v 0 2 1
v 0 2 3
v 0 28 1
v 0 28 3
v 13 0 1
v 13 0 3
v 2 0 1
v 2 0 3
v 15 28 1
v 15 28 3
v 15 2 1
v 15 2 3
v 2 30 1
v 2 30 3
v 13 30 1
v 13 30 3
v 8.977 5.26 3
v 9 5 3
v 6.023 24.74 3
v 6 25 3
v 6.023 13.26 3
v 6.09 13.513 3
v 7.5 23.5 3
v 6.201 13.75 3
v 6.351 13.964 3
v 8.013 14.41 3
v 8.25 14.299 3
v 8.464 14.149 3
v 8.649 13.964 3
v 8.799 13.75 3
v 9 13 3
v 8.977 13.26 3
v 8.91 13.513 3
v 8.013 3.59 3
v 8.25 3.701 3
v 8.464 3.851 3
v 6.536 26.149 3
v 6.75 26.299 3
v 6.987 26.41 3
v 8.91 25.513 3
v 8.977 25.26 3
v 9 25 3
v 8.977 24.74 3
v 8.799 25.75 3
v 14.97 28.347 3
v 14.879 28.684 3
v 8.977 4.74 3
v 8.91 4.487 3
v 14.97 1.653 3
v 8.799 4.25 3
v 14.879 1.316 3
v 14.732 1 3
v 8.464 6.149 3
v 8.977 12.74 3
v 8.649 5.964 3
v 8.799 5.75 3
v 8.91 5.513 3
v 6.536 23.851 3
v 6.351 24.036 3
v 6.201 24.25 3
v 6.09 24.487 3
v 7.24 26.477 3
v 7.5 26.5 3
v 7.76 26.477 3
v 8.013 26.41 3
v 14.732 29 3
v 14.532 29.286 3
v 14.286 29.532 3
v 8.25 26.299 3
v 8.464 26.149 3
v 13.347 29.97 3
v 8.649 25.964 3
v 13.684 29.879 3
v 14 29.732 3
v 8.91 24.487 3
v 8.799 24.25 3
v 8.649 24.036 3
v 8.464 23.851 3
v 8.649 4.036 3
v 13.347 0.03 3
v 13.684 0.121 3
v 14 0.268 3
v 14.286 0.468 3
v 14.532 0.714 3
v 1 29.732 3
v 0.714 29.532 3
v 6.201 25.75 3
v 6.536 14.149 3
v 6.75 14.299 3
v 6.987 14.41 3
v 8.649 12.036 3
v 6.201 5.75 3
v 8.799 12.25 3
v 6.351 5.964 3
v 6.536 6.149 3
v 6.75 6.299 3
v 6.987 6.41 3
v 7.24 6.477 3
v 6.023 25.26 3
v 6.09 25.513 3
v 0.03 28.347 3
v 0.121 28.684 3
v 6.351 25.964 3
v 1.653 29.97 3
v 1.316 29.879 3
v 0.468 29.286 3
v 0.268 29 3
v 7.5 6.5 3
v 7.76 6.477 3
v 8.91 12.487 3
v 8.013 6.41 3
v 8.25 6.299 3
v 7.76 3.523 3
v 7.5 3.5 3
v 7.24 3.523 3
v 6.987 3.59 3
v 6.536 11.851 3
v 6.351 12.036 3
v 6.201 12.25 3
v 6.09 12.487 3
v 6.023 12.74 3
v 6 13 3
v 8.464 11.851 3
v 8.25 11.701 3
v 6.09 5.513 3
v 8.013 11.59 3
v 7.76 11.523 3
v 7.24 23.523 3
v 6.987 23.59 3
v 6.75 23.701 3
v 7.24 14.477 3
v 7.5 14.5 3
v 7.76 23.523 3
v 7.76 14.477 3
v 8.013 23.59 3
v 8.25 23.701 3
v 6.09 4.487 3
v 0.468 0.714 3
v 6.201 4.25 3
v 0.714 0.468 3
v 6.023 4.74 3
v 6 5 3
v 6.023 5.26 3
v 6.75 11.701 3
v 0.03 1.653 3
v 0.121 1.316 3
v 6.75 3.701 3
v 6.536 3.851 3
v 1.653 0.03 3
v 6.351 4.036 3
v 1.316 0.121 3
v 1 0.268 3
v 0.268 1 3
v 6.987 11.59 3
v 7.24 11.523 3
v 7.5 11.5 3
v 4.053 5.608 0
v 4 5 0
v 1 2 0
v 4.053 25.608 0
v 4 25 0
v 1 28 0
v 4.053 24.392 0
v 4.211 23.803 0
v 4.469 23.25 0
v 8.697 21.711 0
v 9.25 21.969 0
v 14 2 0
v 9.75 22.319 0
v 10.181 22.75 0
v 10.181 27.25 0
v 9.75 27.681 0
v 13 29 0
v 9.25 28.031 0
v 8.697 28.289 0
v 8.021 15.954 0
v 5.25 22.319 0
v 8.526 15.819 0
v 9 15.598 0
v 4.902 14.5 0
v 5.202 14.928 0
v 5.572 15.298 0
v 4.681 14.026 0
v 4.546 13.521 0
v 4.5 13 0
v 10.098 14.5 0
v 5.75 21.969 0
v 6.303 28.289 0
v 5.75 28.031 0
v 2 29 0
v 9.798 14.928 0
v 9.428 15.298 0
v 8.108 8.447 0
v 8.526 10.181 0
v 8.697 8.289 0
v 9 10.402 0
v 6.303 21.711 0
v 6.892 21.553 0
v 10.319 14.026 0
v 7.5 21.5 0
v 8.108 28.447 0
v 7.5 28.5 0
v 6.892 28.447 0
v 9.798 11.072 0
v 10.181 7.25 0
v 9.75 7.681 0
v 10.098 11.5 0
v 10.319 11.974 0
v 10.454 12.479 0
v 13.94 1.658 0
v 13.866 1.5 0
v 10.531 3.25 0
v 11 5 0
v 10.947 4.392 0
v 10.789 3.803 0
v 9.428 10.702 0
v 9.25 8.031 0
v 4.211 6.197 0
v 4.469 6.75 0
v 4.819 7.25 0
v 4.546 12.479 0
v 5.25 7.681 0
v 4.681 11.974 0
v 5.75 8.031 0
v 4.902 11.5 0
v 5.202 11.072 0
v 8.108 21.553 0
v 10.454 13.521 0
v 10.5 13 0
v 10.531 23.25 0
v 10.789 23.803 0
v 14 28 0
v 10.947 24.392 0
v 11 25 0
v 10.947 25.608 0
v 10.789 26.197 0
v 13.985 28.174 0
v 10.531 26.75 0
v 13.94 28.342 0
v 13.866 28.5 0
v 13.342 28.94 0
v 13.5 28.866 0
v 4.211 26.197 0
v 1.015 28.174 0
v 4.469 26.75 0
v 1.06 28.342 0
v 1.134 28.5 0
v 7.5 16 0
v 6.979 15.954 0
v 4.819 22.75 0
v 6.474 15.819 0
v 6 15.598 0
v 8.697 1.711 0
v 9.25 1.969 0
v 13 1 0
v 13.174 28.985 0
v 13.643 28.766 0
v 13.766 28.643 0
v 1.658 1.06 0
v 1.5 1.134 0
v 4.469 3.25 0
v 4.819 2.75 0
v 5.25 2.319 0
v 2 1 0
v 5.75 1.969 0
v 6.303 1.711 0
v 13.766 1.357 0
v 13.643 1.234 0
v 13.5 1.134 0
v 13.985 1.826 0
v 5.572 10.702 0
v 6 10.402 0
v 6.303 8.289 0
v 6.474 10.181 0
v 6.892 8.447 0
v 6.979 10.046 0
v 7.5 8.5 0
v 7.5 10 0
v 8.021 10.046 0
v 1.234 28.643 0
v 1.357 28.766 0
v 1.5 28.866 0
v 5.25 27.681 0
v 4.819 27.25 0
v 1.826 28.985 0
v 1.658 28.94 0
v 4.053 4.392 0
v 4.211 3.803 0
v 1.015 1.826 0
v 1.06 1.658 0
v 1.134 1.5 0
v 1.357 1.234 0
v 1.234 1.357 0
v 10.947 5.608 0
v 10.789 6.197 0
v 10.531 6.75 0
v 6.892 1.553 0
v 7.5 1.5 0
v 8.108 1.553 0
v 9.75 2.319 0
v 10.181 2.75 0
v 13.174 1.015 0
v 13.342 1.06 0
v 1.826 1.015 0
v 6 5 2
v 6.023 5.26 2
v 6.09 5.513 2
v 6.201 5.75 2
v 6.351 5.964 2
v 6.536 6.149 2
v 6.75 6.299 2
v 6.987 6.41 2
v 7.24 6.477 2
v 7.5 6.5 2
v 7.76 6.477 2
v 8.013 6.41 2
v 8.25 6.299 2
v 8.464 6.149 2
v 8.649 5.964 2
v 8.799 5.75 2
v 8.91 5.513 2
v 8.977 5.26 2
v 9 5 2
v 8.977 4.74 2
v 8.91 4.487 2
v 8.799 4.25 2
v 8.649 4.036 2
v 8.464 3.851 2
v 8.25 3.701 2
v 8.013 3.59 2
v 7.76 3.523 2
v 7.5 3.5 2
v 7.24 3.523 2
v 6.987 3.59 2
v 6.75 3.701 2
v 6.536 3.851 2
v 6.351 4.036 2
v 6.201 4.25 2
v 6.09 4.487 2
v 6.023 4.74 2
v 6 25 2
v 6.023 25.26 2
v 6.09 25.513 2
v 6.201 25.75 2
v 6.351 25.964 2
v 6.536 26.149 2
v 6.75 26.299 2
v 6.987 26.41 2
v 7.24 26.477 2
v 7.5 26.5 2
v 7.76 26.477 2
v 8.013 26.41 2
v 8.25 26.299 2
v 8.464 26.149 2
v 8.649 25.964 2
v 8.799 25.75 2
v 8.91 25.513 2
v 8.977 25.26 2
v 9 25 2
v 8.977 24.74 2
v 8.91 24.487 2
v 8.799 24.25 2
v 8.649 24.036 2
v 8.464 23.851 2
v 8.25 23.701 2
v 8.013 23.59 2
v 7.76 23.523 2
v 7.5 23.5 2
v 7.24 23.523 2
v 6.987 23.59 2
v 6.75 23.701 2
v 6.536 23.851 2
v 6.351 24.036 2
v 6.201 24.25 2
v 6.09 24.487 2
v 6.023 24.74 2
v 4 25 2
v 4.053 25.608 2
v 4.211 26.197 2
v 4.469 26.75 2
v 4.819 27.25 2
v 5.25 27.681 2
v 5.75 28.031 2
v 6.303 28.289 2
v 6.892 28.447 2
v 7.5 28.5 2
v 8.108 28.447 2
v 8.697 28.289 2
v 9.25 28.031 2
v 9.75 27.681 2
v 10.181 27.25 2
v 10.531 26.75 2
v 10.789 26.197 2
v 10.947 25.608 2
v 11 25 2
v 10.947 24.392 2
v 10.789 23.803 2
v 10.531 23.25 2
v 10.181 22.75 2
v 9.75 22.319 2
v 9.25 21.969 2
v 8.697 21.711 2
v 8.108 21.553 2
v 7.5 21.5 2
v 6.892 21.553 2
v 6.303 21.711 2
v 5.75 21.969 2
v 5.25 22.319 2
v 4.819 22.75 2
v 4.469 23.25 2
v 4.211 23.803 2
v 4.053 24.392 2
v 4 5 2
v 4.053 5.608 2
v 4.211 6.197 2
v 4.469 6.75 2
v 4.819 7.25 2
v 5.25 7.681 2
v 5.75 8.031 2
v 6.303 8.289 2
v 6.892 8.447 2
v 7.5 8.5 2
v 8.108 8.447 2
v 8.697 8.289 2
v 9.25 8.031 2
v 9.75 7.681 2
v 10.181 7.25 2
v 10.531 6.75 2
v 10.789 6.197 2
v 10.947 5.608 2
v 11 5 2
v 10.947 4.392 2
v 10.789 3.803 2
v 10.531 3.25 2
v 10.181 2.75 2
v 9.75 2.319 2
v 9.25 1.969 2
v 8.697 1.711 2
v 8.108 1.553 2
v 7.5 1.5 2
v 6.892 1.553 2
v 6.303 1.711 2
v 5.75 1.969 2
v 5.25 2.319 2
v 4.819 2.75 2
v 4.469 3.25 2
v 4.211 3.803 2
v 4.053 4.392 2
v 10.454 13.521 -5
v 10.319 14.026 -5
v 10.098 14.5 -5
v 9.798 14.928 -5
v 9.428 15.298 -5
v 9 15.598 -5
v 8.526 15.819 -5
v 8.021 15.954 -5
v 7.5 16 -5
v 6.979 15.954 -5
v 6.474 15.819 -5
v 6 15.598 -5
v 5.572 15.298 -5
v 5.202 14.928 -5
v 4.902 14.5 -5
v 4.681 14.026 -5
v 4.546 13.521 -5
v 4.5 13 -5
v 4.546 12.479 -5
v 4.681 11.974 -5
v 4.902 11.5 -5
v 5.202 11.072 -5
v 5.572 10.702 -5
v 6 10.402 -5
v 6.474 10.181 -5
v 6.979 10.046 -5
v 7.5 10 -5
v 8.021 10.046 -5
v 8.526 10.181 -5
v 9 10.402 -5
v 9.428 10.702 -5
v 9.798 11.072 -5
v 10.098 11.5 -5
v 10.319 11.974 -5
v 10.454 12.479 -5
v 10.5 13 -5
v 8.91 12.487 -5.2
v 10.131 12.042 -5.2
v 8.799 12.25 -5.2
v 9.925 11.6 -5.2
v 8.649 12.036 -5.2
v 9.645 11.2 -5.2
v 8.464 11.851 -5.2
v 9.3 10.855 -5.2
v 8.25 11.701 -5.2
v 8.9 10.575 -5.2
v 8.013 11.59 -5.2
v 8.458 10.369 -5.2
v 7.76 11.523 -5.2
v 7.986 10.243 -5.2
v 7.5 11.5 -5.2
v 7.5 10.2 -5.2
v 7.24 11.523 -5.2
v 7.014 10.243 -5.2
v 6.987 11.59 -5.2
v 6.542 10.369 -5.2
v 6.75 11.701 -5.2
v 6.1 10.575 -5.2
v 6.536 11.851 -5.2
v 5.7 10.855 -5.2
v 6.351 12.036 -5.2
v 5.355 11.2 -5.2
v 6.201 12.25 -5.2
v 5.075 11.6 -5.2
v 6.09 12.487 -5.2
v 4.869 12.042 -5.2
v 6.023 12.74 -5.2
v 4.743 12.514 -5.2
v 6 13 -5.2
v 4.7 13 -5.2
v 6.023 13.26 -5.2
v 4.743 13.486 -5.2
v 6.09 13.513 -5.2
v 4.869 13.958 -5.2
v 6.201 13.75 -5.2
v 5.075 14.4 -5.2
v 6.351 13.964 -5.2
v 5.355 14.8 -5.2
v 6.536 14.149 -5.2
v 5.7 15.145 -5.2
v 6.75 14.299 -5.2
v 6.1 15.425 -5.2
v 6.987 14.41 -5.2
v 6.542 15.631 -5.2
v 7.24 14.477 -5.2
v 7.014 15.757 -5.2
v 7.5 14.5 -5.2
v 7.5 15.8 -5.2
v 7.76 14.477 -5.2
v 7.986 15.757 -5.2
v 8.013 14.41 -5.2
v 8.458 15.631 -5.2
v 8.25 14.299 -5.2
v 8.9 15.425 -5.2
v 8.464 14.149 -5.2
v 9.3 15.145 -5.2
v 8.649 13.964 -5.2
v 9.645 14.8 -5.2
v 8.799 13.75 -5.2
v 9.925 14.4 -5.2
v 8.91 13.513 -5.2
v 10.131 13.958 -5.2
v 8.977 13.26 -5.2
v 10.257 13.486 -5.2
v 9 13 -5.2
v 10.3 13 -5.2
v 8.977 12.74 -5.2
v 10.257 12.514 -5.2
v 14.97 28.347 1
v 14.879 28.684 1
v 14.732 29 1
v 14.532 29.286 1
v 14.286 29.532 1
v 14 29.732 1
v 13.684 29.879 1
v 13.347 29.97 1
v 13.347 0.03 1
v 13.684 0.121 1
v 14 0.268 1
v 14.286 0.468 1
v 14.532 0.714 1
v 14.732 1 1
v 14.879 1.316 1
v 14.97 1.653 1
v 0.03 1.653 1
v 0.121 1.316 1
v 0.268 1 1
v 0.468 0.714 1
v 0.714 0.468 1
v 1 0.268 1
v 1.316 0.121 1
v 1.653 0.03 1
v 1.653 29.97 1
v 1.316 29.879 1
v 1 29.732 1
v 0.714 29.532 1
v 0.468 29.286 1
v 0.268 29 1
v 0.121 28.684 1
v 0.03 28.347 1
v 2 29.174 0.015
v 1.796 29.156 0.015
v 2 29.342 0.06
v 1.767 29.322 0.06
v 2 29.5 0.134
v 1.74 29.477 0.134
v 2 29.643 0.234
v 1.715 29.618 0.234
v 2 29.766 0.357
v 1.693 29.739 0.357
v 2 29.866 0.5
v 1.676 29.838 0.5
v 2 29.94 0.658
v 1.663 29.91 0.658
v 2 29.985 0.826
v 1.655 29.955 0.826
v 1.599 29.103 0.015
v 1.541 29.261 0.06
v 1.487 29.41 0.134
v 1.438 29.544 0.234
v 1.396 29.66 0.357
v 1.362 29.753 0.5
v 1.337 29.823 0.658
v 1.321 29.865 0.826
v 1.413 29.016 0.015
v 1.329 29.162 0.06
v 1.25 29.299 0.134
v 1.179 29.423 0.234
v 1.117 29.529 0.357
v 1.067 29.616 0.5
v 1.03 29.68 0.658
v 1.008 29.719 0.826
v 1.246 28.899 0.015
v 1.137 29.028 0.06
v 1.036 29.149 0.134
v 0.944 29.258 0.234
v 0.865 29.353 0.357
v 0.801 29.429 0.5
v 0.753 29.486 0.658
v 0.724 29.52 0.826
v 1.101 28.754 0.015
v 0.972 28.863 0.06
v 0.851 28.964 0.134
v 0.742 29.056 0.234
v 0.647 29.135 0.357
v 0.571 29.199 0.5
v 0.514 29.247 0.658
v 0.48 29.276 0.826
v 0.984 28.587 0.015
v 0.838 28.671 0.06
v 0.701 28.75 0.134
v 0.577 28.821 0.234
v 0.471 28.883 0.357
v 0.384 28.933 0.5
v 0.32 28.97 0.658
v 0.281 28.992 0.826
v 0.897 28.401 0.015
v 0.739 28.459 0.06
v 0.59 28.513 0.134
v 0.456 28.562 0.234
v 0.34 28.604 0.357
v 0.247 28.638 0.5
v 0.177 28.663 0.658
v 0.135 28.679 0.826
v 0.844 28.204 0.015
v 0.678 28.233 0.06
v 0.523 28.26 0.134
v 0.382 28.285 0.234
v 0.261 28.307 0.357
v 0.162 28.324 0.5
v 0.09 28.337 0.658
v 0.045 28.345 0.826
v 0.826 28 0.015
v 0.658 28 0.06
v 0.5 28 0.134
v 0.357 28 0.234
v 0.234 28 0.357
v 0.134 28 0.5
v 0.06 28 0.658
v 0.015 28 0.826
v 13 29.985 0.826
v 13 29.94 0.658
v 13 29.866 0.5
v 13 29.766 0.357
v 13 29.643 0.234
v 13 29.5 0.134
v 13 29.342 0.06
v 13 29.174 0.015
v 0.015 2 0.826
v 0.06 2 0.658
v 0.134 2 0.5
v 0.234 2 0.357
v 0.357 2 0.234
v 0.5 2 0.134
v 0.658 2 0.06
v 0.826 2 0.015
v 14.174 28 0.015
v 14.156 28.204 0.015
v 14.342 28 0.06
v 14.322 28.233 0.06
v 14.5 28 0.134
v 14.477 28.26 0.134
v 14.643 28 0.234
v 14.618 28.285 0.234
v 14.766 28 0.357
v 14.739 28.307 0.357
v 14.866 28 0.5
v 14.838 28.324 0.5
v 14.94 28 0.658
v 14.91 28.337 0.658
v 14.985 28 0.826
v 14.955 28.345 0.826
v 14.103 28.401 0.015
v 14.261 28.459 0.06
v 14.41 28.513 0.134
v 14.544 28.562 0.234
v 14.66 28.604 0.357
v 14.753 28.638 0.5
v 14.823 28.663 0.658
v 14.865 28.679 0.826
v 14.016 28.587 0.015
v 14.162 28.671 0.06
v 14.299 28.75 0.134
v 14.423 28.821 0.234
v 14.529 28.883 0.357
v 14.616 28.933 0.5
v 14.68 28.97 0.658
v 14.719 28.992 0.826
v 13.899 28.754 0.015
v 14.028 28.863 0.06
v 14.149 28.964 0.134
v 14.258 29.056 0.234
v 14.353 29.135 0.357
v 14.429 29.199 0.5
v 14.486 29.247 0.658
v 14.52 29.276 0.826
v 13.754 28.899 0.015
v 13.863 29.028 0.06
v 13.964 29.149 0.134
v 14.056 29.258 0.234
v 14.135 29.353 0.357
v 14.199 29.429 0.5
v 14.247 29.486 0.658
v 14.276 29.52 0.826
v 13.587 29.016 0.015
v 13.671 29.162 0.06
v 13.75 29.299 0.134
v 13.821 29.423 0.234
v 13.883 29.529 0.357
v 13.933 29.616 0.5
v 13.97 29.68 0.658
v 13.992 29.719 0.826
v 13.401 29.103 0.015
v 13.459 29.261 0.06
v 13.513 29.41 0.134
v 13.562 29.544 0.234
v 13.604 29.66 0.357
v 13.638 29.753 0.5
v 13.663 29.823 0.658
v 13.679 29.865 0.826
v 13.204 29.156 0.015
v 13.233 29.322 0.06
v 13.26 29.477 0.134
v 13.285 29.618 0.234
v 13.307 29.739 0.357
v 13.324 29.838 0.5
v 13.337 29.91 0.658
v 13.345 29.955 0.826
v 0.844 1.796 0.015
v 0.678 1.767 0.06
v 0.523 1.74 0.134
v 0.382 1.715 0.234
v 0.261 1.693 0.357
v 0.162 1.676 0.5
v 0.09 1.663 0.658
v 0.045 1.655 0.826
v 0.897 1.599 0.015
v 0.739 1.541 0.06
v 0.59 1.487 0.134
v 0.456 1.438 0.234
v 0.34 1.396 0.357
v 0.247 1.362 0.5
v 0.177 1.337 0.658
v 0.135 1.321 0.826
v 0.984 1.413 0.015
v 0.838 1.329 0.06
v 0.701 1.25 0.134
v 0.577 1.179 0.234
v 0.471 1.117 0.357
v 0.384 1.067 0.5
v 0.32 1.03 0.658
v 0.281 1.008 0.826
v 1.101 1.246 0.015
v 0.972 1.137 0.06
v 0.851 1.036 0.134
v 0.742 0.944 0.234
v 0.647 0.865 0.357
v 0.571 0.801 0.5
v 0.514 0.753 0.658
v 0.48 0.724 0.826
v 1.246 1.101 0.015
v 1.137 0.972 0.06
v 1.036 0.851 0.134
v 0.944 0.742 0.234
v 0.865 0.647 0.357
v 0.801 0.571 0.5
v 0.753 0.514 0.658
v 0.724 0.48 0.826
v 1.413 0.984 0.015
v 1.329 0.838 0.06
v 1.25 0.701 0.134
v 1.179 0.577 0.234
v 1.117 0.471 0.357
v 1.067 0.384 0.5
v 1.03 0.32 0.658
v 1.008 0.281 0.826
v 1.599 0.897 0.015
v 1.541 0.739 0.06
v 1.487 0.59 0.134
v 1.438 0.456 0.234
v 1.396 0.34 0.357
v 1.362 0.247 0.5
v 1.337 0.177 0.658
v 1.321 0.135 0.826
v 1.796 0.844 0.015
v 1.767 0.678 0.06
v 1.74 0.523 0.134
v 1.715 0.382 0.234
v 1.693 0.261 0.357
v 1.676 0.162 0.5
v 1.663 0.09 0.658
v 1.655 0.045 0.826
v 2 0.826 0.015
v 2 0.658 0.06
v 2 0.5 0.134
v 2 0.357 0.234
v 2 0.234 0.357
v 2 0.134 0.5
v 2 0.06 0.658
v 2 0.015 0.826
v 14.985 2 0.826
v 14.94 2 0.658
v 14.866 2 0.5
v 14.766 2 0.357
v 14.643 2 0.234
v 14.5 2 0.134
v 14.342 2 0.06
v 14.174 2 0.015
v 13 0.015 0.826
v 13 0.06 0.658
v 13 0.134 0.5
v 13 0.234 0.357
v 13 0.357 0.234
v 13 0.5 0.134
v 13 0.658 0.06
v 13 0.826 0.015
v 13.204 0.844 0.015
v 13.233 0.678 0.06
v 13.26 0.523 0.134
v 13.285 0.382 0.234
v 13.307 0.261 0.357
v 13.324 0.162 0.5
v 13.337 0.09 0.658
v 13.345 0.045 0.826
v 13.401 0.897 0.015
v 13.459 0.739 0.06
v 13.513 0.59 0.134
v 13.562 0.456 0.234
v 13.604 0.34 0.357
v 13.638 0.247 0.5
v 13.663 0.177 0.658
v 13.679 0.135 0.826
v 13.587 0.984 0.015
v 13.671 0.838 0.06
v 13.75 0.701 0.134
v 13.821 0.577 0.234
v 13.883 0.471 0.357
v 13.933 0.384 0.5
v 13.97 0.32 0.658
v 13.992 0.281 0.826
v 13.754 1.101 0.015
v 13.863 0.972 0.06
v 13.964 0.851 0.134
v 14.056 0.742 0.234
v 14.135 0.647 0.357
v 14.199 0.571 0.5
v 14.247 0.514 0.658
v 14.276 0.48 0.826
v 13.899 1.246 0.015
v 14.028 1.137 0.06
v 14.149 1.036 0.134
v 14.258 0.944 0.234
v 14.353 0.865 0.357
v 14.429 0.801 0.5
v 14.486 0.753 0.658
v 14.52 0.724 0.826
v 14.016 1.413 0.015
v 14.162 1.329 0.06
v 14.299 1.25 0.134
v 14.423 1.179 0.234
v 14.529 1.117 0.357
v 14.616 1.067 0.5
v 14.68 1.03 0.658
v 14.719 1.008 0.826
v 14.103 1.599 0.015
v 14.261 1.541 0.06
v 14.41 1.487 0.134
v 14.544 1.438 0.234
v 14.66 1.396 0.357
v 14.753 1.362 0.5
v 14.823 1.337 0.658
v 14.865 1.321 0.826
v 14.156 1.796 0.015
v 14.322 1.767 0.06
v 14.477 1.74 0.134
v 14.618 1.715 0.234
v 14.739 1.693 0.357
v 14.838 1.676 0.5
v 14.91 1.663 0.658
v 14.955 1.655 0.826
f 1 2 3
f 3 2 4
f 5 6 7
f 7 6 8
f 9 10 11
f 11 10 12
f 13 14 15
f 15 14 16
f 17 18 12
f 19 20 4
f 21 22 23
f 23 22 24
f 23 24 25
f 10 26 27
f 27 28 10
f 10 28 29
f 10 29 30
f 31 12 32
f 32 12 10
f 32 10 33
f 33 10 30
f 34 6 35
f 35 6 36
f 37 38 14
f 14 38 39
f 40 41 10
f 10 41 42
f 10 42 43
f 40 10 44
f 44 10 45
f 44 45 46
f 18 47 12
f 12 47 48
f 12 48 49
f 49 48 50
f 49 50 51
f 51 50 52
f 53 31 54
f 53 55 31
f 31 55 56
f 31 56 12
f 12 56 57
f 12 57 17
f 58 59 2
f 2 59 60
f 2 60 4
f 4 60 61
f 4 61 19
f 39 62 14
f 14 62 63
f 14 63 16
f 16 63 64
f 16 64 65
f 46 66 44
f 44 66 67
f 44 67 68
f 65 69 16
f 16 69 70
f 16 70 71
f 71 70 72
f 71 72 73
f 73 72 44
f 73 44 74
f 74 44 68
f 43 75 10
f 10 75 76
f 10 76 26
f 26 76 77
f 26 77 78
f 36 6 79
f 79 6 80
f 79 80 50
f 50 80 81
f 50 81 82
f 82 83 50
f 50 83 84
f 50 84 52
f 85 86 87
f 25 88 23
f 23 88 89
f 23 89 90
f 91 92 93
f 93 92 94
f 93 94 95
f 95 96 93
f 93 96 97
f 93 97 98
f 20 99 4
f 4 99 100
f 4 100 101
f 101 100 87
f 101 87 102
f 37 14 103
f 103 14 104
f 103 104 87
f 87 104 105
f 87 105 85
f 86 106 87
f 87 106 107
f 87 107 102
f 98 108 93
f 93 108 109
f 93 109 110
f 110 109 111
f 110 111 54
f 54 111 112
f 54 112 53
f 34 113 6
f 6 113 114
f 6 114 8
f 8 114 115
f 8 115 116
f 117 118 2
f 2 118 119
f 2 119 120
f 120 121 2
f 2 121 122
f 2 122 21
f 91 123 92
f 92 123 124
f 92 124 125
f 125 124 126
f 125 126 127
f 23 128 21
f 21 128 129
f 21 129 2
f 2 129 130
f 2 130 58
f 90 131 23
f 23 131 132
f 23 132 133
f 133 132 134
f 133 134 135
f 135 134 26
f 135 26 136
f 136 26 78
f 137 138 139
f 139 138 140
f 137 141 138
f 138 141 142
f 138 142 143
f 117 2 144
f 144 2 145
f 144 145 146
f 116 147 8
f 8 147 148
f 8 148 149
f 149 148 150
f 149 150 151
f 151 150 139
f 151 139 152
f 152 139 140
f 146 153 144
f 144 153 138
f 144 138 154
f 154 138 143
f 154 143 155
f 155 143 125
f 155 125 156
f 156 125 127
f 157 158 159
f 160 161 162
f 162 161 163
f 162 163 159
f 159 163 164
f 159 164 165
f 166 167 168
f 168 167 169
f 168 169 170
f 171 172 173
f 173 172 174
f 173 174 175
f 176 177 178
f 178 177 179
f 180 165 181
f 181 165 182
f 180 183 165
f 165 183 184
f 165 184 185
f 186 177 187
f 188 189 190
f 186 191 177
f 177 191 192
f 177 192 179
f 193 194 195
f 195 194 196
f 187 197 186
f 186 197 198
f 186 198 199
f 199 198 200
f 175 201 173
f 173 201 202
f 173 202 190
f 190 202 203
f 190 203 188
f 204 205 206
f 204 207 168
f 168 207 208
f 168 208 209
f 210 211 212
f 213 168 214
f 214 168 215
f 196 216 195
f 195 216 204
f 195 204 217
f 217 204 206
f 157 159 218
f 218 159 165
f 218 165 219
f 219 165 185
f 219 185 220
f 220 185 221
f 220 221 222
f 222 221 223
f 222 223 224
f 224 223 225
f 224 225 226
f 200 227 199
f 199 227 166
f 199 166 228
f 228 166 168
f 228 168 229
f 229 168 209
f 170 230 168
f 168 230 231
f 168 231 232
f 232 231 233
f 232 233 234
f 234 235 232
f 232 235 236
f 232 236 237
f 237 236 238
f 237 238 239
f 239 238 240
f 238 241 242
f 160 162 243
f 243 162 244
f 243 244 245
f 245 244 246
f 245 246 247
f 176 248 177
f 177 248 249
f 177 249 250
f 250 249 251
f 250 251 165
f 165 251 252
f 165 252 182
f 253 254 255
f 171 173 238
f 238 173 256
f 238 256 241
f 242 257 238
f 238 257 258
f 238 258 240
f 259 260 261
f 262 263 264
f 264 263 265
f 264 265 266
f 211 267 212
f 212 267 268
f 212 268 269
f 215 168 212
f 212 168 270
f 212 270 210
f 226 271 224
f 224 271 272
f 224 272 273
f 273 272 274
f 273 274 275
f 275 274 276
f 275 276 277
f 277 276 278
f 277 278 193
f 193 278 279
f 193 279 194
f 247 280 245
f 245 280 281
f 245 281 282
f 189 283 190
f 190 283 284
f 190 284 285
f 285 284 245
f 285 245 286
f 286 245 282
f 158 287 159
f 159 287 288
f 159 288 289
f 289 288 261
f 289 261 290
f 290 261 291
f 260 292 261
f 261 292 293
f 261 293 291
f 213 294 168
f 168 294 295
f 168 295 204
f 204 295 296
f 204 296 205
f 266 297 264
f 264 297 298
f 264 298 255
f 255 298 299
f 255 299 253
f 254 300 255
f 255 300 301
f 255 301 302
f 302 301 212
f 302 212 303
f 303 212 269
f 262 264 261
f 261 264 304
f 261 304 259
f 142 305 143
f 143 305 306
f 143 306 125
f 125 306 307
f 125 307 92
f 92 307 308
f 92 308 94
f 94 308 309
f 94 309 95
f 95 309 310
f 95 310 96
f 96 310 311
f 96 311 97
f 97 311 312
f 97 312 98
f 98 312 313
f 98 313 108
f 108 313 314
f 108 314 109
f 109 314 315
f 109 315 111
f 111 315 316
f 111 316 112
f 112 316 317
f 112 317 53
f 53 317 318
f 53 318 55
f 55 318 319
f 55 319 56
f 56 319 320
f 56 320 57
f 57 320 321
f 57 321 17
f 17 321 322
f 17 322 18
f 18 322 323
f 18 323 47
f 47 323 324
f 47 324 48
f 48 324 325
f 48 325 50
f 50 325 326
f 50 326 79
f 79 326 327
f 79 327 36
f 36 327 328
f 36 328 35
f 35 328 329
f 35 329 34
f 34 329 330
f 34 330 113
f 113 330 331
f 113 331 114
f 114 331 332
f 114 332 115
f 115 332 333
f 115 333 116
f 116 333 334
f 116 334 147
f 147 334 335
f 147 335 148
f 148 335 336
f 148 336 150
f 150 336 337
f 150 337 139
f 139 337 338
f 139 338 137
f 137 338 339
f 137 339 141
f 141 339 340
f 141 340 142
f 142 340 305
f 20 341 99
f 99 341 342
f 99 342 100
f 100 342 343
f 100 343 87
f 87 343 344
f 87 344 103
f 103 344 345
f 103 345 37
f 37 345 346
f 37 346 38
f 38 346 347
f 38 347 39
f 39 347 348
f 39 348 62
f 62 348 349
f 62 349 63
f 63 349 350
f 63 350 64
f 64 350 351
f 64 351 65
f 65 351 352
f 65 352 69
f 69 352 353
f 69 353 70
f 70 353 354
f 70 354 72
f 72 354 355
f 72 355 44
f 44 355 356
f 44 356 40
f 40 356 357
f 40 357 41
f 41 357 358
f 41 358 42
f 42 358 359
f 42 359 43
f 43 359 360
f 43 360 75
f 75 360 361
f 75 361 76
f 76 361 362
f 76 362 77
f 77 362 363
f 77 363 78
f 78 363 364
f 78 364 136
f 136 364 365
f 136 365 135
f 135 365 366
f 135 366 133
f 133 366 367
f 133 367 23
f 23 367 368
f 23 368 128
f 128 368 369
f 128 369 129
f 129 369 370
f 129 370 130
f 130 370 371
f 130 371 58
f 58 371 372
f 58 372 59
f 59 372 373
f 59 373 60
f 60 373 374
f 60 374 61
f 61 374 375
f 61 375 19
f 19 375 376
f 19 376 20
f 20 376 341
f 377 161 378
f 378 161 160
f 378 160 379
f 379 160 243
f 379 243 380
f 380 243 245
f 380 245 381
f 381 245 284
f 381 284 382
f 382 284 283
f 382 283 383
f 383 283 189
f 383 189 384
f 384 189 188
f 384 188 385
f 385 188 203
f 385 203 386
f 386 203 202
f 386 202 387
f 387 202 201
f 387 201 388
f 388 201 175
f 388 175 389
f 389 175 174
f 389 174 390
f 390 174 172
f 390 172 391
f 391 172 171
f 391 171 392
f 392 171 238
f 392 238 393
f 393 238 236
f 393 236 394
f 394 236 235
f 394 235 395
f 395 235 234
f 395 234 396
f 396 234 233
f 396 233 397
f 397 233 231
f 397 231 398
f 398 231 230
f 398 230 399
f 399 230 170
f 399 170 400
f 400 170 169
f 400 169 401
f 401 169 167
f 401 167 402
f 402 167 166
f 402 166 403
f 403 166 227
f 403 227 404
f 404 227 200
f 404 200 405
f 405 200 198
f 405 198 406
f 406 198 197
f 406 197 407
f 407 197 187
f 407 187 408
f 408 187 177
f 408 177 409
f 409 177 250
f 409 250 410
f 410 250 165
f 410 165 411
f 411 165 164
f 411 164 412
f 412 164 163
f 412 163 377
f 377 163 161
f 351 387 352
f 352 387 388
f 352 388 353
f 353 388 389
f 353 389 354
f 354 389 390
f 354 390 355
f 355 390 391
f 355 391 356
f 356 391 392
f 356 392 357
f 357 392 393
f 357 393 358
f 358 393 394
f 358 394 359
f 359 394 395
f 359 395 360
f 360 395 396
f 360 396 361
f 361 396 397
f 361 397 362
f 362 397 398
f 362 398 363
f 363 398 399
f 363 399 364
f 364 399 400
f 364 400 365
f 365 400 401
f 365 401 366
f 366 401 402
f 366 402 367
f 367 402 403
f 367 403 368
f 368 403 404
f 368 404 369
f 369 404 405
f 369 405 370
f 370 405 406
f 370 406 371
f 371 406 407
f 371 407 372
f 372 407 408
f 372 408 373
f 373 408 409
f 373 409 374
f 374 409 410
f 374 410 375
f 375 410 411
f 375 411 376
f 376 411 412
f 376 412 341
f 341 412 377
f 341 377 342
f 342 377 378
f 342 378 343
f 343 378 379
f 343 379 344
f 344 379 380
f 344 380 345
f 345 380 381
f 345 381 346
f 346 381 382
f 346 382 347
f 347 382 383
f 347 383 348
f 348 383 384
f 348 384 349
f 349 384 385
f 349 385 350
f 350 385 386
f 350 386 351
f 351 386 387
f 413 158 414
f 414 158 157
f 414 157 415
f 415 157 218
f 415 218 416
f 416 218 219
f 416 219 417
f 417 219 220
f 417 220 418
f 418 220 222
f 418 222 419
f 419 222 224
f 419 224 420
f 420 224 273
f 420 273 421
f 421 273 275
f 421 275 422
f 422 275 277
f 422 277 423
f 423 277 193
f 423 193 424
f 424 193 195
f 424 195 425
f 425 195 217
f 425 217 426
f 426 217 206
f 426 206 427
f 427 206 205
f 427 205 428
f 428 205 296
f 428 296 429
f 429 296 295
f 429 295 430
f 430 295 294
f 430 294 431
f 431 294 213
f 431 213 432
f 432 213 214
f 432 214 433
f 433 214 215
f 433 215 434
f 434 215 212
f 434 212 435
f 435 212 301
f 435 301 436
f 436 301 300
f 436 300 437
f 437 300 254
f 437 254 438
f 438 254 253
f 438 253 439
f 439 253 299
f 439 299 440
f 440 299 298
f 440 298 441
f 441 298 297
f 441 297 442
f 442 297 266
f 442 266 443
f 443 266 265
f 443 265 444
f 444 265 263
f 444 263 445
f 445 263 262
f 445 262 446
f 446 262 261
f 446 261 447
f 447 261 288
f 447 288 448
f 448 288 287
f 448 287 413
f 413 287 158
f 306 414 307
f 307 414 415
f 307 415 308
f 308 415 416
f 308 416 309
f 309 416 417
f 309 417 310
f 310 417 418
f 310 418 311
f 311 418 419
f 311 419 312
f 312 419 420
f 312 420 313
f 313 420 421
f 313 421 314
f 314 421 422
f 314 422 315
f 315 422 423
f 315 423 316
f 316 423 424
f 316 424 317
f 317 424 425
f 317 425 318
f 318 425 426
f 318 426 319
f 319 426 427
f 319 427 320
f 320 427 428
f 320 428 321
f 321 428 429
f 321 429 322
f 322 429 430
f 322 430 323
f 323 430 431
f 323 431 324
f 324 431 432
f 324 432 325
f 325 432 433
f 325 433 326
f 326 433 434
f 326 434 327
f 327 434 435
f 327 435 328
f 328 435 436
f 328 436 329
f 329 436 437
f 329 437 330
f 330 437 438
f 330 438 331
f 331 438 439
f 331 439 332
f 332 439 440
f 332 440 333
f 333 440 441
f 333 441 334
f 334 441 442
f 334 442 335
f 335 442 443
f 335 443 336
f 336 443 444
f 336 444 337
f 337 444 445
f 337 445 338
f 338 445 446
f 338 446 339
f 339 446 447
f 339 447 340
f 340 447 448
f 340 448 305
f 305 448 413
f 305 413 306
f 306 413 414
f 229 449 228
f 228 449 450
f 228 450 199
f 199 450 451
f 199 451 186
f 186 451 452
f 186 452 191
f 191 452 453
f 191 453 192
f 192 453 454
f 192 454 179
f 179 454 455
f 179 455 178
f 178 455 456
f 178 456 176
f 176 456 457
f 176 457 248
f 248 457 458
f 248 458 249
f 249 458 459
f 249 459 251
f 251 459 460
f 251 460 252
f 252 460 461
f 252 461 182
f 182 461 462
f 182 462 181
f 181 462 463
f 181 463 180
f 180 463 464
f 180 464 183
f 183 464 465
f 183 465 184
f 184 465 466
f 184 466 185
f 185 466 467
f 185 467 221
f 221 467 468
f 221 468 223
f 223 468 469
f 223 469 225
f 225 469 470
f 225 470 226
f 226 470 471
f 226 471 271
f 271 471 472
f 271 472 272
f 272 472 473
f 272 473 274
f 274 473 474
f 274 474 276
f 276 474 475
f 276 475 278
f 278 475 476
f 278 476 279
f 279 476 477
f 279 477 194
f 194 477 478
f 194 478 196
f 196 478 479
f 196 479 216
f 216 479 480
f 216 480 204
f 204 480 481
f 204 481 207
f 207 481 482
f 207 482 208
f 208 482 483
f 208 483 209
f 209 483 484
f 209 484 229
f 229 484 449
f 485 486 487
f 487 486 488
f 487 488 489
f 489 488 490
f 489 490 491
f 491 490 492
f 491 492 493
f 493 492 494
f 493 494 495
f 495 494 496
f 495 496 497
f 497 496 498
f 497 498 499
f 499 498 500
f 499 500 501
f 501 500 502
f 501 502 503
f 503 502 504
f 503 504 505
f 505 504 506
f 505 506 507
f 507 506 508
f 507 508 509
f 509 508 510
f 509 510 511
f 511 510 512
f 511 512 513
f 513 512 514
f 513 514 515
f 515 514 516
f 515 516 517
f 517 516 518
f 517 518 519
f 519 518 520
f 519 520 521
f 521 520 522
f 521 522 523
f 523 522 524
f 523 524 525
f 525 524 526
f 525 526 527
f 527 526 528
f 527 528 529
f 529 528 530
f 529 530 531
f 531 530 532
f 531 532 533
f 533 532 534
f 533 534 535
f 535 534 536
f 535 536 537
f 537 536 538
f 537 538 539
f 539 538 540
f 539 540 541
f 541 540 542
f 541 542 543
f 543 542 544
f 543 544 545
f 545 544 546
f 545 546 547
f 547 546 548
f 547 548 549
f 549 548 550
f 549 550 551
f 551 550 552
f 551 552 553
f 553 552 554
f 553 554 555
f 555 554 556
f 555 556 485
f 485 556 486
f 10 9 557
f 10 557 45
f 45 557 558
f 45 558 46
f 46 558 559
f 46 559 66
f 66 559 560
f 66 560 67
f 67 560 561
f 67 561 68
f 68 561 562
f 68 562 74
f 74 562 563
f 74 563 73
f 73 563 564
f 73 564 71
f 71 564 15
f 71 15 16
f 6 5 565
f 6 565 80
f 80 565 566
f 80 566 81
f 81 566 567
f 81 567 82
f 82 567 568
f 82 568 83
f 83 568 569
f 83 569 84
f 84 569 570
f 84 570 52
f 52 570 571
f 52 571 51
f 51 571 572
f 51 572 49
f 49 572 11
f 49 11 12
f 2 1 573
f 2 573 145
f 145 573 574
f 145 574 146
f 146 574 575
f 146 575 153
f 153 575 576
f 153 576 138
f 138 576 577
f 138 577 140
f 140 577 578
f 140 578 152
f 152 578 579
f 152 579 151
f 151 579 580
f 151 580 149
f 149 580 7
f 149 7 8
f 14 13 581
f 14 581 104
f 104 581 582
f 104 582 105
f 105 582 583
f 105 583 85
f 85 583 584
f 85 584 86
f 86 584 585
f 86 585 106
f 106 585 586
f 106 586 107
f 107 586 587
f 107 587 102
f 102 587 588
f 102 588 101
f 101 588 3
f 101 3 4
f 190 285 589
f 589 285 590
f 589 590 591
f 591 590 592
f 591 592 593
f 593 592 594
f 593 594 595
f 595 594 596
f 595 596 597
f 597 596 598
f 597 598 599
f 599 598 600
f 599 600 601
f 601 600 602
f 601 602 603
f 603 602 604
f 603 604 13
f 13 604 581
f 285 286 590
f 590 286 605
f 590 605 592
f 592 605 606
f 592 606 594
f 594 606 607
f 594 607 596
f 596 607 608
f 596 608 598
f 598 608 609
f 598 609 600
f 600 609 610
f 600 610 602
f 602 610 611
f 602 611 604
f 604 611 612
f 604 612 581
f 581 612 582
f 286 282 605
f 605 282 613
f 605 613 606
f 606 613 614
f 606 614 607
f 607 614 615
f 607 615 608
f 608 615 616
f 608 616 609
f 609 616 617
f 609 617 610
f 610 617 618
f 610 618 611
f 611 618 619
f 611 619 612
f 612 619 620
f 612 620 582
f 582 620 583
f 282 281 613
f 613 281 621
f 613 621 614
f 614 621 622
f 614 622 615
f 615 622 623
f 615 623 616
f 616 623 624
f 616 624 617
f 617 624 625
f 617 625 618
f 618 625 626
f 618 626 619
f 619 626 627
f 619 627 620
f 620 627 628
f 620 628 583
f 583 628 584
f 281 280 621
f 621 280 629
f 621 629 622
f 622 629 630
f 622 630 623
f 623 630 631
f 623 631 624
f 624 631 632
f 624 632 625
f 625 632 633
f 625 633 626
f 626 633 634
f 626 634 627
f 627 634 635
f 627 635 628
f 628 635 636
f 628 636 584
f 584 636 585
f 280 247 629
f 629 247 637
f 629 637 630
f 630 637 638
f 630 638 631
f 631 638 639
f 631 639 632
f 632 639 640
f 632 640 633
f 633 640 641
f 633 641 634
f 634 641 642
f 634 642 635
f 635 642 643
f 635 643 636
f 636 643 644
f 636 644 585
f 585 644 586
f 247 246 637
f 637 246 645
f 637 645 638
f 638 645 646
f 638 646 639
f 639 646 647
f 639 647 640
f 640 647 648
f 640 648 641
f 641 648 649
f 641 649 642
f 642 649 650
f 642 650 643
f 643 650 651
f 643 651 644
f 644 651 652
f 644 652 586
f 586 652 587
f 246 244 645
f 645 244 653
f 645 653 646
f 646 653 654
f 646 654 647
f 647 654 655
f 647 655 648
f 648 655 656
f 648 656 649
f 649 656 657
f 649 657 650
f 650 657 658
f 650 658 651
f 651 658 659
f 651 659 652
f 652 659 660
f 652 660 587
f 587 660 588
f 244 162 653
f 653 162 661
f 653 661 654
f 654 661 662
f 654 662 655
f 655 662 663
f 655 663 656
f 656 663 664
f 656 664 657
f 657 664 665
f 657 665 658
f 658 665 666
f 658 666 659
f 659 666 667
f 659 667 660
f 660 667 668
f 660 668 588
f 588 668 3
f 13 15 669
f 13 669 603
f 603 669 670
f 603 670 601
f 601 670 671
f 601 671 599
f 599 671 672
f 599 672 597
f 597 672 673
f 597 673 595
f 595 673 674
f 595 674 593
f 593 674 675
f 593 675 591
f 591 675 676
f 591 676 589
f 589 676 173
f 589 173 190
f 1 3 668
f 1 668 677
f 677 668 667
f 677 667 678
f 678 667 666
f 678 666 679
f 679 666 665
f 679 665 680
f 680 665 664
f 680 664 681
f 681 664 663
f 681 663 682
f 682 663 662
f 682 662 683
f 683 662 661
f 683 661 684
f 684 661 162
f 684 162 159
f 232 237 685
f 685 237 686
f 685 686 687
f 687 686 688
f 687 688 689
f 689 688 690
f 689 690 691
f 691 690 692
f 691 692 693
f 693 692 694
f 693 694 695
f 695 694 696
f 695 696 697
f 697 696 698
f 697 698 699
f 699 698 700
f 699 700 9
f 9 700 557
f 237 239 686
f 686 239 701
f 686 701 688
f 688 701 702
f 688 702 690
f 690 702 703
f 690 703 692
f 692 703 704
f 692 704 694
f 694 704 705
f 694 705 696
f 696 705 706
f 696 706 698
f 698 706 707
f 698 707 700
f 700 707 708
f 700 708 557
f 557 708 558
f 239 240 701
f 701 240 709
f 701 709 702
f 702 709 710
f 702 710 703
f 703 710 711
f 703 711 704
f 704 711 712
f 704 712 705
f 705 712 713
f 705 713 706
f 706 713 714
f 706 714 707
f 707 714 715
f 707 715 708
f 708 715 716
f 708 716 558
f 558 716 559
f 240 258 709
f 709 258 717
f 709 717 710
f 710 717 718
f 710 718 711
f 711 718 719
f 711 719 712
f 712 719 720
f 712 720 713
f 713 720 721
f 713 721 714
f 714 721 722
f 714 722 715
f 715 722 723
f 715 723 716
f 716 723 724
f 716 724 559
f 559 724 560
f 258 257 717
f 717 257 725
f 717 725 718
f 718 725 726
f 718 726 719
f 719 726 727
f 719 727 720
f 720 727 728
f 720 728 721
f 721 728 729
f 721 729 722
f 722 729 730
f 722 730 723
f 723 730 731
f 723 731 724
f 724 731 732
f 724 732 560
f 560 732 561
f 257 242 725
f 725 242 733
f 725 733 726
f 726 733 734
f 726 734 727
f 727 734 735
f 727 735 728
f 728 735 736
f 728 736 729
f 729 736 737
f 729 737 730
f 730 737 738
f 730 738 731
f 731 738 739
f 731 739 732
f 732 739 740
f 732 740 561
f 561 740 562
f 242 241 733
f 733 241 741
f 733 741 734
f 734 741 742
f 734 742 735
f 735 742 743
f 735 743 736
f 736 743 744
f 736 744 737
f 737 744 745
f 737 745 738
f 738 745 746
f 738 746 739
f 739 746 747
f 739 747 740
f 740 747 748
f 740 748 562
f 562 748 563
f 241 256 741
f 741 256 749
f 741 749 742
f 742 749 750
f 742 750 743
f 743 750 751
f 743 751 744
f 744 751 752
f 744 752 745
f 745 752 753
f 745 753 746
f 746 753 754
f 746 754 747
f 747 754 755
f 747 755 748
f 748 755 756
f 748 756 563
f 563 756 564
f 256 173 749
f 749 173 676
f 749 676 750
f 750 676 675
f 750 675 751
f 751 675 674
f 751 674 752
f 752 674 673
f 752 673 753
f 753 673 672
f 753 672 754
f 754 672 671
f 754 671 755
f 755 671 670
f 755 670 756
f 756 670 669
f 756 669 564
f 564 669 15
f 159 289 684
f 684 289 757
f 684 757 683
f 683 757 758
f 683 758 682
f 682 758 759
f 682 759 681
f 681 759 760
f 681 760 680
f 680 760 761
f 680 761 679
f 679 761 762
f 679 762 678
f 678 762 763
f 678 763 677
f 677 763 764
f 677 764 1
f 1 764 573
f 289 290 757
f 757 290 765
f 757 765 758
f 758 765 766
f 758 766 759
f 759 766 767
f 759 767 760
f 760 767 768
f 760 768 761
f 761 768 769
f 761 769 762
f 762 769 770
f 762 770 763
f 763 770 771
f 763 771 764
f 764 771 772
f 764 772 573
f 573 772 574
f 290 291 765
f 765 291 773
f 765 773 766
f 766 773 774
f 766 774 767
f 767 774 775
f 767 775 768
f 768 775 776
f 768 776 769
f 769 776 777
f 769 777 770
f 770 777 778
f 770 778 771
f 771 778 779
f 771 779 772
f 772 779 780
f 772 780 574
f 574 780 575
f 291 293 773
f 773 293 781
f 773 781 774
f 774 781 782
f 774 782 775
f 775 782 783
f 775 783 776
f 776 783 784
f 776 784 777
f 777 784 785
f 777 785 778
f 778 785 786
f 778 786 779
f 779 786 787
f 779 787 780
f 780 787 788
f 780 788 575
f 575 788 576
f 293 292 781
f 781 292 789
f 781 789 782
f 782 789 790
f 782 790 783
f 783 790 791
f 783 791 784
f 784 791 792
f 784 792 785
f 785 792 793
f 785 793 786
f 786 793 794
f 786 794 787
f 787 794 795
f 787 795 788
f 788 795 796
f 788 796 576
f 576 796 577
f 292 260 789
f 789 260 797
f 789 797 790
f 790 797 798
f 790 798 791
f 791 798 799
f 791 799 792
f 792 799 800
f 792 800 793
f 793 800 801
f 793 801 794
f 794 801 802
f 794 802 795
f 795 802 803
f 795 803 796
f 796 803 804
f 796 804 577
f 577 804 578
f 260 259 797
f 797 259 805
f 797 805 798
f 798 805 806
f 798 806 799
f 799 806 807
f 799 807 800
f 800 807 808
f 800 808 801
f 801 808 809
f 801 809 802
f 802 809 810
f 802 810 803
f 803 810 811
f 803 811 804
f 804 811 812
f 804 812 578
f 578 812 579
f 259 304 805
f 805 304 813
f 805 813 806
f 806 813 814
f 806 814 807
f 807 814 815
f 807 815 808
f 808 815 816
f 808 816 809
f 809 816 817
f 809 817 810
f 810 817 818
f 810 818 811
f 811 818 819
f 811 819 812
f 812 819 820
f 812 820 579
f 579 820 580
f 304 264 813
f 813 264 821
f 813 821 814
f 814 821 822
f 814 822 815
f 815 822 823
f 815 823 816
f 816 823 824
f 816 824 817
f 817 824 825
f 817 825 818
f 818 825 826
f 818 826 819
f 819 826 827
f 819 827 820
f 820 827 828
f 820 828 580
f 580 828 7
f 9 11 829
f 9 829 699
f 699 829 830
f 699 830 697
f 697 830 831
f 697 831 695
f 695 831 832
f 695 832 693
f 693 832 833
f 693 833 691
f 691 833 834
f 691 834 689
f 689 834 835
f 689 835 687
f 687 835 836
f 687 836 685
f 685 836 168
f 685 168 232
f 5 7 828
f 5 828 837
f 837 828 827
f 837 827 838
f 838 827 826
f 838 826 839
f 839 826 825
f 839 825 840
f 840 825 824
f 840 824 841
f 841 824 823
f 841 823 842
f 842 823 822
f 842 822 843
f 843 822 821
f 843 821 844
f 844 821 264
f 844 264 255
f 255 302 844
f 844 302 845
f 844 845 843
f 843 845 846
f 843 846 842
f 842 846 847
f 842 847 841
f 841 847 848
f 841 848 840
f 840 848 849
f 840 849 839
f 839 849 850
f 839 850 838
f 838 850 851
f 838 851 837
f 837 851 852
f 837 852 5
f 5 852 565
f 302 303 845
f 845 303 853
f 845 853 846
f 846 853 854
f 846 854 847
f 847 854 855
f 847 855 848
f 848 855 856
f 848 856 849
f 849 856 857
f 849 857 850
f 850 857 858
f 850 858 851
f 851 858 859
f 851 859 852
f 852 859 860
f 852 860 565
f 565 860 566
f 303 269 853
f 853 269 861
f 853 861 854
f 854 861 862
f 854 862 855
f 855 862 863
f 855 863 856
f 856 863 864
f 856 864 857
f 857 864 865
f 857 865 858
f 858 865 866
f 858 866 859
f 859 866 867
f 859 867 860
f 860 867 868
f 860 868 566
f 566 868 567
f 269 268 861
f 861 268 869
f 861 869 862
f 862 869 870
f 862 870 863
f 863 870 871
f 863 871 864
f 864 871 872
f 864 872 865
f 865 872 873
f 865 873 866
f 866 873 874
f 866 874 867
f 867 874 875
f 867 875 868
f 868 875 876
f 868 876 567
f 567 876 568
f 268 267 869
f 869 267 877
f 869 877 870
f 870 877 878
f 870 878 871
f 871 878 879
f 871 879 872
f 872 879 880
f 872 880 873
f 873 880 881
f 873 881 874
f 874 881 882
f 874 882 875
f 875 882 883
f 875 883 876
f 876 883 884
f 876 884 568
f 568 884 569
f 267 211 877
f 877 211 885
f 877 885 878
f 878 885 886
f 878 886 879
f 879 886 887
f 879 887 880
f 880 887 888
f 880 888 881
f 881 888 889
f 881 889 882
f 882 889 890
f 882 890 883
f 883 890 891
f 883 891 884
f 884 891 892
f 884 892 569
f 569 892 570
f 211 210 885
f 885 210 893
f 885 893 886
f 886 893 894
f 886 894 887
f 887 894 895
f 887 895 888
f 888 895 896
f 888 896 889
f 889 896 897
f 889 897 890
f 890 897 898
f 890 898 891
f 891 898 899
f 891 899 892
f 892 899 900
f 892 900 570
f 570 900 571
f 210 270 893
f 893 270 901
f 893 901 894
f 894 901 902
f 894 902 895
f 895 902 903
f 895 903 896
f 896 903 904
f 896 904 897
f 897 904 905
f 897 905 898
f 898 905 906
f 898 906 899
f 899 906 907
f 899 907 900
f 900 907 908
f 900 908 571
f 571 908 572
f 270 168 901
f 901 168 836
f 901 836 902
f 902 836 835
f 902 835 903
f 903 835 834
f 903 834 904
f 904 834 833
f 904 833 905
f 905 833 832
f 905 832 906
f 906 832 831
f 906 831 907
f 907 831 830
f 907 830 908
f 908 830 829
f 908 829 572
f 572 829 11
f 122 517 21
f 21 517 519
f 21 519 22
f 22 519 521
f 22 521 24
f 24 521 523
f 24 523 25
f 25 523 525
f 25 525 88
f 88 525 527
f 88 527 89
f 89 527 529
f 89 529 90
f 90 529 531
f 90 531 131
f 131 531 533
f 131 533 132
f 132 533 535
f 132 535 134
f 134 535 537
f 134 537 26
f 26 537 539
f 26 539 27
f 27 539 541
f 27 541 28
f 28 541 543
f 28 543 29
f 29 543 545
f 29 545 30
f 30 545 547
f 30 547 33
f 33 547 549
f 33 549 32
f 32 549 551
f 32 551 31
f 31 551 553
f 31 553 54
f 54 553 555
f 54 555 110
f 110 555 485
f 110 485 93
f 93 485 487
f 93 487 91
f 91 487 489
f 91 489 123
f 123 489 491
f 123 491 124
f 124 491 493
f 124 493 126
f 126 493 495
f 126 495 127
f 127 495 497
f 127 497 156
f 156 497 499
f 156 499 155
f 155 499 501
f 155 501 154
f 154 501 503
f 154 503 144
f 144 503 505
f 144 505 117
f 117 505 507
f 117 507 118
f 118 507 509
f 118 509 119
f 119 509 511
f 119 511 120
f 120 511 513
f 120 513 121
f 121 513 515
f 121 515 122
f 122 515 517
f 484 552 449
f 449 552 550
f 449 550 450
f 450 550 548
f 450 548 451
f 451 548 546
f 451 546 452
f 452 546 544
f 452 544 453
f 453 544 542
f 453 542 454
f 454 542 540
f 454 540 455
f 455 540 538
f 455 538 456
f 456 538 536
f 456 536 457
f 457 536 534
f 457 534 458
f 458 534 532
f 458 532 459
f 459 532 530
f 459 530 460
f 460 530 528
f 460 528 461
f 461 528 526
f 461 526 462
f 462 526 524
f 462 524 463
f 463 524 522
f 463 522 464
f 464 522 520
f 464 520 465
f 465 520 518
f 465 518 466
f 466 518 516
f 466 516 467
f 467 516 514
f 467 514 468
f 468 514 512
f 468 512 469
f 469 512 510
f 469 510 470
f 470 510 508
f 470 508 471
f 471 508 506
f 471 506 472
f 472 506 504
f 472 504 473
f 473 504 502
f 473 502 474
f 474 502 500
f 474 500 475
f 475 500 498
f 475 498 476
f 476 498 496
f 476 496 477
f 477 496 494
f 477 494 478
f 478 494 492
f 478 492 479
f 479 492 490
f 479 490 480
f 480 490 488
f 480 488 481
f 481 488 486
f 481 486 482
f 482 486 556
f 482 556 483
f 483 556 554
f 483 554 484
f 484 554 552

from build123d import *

# Parameters (mm, degrees)
ESQUISSE1_W                  = 15
ESQUISSE1_H                  = 30
BOSS_EXTRU_1_DEPTH           = 3
ESQUISSE2_R                  = 1.5
ENL_V_MAT_EXTRU_2_DEPTH      = 3
ESQUISSE3_R                  = 3.5
ENL_V_MAT_EXTRU_3_DEPTH      = 2
ESQUISSE4_R                  = 3
BOSS_EXTRU_2_DEPTH           = 5.2
CONG_3_R                     = 2
CONG_4_R                     = 1
ESQUISSE5_R                  = 1.5
ENL_V_MAT_EXTRU_4_DEPTH      = 18
ENL_V_MAT_EXTRU_4_DEPTH_BACK = 18
CHANFREIN2_SIZE              = 0.2


with BuildPart() as part:
    # Esquisse1 → Boss.-Extru.1 (new body)
    with BuildSketch(Plane.XY):
        with Locations((7.5, 15)):
            Rectangle(ESQUISSE1_W, ESQUISSE1_H)
    extrude(amount=BOSS_EXTRU_1_DEPTH)

    # Esquisse2 → Enlèv. mat.-Extru.2 (cut)
    with BuildSketch(Plane.XY):
        with Locations((7.5, 25)):
            Circle(ESQUISSE2_R)
        with Locations((7.5, 5)):
            Circle(ESQUISSE2_R)
    extrude(amount=ENL_V_MAT_EXTRU_2_DEPTH, mode=Mode.SUBTRACT)

    # Esquisse3 → Enlèv. mat.-Extru.3 (cut)
    with BuildSketch(Plane.XY):
        with Locations((7.5, 25)):
            Circle(ESQUISSE3_R)
        with Locations((7.5, 5)):
            Circle(ESQUISSE3_R)
    extrude(amount=ENL_V_MAT_EXTRU_3_DEPTH, mode=Mode.SUBTRACT)

    # Esquisse4 → Boss.-Extru.2 (add)
    with BuildSketch(Plane.XY):
        with Locations((7.5, 13)):
            Circle(ESQUISSE4_R)
    extrude(amount=-BOSS_EXTRU_2_DEPTH)

    # Congé3
    cong_3_edges = [part.edges().sort_by_distance(p)[0] for p in [
        (0, 30, 1.5),
        (15, 30, 1.5),
        (15, 0, 1.5),
        (0, 0, 1.5),
    ]]
    fillet(cong_3_edges, radius=CONG_3_R)

    # Congé4
    cong_4_edges = [part.edges().sort_by_distance(p)[0] for p in [
        (7.5, 30, 0),
        (0, 15, 0),
        (15, 15, 0),
        (7.5, 0, 0),
        (0.585786438, 29.414213562, 0),
        (0.585786438, 0.585786438, 0),
        (14.414213562, 0.585786438, 0),
        (14.414213562, 29.414213562, 0),
    ]]
    fillet(cong_4_edges, radius=CONG_4_R)

    # Esquisse5 → Enlèv. mat.-Extru.4 (cut, two sides)
    with BuildSketch(Plane.XY) as enl_v_mat_extru_4_sk:
        with Locations((7.5, 13)):
            Circle(ESQUISSE5_R)
    extrude(amount=ENL_V_MAT_EXTRU_4_DEPTH, mode=Mode.SUBTRACT)
    extrude(enl_v_mat_extru_4_sk.sketch, amount=-ENL_V_MAT_EXTRU_4_DEPTH_BACK, mode=Mode.SUBTRACT)

    # Chanfrein2
    chanfrein2_edges = [part.edges().sort_by_distance(p)[0] for p in [
        (4.5, 13, -5.2),
    ]]
    chamfer(chanfrein2_edges, length=CHANFREIN2_SIZE)


solid = part.part
